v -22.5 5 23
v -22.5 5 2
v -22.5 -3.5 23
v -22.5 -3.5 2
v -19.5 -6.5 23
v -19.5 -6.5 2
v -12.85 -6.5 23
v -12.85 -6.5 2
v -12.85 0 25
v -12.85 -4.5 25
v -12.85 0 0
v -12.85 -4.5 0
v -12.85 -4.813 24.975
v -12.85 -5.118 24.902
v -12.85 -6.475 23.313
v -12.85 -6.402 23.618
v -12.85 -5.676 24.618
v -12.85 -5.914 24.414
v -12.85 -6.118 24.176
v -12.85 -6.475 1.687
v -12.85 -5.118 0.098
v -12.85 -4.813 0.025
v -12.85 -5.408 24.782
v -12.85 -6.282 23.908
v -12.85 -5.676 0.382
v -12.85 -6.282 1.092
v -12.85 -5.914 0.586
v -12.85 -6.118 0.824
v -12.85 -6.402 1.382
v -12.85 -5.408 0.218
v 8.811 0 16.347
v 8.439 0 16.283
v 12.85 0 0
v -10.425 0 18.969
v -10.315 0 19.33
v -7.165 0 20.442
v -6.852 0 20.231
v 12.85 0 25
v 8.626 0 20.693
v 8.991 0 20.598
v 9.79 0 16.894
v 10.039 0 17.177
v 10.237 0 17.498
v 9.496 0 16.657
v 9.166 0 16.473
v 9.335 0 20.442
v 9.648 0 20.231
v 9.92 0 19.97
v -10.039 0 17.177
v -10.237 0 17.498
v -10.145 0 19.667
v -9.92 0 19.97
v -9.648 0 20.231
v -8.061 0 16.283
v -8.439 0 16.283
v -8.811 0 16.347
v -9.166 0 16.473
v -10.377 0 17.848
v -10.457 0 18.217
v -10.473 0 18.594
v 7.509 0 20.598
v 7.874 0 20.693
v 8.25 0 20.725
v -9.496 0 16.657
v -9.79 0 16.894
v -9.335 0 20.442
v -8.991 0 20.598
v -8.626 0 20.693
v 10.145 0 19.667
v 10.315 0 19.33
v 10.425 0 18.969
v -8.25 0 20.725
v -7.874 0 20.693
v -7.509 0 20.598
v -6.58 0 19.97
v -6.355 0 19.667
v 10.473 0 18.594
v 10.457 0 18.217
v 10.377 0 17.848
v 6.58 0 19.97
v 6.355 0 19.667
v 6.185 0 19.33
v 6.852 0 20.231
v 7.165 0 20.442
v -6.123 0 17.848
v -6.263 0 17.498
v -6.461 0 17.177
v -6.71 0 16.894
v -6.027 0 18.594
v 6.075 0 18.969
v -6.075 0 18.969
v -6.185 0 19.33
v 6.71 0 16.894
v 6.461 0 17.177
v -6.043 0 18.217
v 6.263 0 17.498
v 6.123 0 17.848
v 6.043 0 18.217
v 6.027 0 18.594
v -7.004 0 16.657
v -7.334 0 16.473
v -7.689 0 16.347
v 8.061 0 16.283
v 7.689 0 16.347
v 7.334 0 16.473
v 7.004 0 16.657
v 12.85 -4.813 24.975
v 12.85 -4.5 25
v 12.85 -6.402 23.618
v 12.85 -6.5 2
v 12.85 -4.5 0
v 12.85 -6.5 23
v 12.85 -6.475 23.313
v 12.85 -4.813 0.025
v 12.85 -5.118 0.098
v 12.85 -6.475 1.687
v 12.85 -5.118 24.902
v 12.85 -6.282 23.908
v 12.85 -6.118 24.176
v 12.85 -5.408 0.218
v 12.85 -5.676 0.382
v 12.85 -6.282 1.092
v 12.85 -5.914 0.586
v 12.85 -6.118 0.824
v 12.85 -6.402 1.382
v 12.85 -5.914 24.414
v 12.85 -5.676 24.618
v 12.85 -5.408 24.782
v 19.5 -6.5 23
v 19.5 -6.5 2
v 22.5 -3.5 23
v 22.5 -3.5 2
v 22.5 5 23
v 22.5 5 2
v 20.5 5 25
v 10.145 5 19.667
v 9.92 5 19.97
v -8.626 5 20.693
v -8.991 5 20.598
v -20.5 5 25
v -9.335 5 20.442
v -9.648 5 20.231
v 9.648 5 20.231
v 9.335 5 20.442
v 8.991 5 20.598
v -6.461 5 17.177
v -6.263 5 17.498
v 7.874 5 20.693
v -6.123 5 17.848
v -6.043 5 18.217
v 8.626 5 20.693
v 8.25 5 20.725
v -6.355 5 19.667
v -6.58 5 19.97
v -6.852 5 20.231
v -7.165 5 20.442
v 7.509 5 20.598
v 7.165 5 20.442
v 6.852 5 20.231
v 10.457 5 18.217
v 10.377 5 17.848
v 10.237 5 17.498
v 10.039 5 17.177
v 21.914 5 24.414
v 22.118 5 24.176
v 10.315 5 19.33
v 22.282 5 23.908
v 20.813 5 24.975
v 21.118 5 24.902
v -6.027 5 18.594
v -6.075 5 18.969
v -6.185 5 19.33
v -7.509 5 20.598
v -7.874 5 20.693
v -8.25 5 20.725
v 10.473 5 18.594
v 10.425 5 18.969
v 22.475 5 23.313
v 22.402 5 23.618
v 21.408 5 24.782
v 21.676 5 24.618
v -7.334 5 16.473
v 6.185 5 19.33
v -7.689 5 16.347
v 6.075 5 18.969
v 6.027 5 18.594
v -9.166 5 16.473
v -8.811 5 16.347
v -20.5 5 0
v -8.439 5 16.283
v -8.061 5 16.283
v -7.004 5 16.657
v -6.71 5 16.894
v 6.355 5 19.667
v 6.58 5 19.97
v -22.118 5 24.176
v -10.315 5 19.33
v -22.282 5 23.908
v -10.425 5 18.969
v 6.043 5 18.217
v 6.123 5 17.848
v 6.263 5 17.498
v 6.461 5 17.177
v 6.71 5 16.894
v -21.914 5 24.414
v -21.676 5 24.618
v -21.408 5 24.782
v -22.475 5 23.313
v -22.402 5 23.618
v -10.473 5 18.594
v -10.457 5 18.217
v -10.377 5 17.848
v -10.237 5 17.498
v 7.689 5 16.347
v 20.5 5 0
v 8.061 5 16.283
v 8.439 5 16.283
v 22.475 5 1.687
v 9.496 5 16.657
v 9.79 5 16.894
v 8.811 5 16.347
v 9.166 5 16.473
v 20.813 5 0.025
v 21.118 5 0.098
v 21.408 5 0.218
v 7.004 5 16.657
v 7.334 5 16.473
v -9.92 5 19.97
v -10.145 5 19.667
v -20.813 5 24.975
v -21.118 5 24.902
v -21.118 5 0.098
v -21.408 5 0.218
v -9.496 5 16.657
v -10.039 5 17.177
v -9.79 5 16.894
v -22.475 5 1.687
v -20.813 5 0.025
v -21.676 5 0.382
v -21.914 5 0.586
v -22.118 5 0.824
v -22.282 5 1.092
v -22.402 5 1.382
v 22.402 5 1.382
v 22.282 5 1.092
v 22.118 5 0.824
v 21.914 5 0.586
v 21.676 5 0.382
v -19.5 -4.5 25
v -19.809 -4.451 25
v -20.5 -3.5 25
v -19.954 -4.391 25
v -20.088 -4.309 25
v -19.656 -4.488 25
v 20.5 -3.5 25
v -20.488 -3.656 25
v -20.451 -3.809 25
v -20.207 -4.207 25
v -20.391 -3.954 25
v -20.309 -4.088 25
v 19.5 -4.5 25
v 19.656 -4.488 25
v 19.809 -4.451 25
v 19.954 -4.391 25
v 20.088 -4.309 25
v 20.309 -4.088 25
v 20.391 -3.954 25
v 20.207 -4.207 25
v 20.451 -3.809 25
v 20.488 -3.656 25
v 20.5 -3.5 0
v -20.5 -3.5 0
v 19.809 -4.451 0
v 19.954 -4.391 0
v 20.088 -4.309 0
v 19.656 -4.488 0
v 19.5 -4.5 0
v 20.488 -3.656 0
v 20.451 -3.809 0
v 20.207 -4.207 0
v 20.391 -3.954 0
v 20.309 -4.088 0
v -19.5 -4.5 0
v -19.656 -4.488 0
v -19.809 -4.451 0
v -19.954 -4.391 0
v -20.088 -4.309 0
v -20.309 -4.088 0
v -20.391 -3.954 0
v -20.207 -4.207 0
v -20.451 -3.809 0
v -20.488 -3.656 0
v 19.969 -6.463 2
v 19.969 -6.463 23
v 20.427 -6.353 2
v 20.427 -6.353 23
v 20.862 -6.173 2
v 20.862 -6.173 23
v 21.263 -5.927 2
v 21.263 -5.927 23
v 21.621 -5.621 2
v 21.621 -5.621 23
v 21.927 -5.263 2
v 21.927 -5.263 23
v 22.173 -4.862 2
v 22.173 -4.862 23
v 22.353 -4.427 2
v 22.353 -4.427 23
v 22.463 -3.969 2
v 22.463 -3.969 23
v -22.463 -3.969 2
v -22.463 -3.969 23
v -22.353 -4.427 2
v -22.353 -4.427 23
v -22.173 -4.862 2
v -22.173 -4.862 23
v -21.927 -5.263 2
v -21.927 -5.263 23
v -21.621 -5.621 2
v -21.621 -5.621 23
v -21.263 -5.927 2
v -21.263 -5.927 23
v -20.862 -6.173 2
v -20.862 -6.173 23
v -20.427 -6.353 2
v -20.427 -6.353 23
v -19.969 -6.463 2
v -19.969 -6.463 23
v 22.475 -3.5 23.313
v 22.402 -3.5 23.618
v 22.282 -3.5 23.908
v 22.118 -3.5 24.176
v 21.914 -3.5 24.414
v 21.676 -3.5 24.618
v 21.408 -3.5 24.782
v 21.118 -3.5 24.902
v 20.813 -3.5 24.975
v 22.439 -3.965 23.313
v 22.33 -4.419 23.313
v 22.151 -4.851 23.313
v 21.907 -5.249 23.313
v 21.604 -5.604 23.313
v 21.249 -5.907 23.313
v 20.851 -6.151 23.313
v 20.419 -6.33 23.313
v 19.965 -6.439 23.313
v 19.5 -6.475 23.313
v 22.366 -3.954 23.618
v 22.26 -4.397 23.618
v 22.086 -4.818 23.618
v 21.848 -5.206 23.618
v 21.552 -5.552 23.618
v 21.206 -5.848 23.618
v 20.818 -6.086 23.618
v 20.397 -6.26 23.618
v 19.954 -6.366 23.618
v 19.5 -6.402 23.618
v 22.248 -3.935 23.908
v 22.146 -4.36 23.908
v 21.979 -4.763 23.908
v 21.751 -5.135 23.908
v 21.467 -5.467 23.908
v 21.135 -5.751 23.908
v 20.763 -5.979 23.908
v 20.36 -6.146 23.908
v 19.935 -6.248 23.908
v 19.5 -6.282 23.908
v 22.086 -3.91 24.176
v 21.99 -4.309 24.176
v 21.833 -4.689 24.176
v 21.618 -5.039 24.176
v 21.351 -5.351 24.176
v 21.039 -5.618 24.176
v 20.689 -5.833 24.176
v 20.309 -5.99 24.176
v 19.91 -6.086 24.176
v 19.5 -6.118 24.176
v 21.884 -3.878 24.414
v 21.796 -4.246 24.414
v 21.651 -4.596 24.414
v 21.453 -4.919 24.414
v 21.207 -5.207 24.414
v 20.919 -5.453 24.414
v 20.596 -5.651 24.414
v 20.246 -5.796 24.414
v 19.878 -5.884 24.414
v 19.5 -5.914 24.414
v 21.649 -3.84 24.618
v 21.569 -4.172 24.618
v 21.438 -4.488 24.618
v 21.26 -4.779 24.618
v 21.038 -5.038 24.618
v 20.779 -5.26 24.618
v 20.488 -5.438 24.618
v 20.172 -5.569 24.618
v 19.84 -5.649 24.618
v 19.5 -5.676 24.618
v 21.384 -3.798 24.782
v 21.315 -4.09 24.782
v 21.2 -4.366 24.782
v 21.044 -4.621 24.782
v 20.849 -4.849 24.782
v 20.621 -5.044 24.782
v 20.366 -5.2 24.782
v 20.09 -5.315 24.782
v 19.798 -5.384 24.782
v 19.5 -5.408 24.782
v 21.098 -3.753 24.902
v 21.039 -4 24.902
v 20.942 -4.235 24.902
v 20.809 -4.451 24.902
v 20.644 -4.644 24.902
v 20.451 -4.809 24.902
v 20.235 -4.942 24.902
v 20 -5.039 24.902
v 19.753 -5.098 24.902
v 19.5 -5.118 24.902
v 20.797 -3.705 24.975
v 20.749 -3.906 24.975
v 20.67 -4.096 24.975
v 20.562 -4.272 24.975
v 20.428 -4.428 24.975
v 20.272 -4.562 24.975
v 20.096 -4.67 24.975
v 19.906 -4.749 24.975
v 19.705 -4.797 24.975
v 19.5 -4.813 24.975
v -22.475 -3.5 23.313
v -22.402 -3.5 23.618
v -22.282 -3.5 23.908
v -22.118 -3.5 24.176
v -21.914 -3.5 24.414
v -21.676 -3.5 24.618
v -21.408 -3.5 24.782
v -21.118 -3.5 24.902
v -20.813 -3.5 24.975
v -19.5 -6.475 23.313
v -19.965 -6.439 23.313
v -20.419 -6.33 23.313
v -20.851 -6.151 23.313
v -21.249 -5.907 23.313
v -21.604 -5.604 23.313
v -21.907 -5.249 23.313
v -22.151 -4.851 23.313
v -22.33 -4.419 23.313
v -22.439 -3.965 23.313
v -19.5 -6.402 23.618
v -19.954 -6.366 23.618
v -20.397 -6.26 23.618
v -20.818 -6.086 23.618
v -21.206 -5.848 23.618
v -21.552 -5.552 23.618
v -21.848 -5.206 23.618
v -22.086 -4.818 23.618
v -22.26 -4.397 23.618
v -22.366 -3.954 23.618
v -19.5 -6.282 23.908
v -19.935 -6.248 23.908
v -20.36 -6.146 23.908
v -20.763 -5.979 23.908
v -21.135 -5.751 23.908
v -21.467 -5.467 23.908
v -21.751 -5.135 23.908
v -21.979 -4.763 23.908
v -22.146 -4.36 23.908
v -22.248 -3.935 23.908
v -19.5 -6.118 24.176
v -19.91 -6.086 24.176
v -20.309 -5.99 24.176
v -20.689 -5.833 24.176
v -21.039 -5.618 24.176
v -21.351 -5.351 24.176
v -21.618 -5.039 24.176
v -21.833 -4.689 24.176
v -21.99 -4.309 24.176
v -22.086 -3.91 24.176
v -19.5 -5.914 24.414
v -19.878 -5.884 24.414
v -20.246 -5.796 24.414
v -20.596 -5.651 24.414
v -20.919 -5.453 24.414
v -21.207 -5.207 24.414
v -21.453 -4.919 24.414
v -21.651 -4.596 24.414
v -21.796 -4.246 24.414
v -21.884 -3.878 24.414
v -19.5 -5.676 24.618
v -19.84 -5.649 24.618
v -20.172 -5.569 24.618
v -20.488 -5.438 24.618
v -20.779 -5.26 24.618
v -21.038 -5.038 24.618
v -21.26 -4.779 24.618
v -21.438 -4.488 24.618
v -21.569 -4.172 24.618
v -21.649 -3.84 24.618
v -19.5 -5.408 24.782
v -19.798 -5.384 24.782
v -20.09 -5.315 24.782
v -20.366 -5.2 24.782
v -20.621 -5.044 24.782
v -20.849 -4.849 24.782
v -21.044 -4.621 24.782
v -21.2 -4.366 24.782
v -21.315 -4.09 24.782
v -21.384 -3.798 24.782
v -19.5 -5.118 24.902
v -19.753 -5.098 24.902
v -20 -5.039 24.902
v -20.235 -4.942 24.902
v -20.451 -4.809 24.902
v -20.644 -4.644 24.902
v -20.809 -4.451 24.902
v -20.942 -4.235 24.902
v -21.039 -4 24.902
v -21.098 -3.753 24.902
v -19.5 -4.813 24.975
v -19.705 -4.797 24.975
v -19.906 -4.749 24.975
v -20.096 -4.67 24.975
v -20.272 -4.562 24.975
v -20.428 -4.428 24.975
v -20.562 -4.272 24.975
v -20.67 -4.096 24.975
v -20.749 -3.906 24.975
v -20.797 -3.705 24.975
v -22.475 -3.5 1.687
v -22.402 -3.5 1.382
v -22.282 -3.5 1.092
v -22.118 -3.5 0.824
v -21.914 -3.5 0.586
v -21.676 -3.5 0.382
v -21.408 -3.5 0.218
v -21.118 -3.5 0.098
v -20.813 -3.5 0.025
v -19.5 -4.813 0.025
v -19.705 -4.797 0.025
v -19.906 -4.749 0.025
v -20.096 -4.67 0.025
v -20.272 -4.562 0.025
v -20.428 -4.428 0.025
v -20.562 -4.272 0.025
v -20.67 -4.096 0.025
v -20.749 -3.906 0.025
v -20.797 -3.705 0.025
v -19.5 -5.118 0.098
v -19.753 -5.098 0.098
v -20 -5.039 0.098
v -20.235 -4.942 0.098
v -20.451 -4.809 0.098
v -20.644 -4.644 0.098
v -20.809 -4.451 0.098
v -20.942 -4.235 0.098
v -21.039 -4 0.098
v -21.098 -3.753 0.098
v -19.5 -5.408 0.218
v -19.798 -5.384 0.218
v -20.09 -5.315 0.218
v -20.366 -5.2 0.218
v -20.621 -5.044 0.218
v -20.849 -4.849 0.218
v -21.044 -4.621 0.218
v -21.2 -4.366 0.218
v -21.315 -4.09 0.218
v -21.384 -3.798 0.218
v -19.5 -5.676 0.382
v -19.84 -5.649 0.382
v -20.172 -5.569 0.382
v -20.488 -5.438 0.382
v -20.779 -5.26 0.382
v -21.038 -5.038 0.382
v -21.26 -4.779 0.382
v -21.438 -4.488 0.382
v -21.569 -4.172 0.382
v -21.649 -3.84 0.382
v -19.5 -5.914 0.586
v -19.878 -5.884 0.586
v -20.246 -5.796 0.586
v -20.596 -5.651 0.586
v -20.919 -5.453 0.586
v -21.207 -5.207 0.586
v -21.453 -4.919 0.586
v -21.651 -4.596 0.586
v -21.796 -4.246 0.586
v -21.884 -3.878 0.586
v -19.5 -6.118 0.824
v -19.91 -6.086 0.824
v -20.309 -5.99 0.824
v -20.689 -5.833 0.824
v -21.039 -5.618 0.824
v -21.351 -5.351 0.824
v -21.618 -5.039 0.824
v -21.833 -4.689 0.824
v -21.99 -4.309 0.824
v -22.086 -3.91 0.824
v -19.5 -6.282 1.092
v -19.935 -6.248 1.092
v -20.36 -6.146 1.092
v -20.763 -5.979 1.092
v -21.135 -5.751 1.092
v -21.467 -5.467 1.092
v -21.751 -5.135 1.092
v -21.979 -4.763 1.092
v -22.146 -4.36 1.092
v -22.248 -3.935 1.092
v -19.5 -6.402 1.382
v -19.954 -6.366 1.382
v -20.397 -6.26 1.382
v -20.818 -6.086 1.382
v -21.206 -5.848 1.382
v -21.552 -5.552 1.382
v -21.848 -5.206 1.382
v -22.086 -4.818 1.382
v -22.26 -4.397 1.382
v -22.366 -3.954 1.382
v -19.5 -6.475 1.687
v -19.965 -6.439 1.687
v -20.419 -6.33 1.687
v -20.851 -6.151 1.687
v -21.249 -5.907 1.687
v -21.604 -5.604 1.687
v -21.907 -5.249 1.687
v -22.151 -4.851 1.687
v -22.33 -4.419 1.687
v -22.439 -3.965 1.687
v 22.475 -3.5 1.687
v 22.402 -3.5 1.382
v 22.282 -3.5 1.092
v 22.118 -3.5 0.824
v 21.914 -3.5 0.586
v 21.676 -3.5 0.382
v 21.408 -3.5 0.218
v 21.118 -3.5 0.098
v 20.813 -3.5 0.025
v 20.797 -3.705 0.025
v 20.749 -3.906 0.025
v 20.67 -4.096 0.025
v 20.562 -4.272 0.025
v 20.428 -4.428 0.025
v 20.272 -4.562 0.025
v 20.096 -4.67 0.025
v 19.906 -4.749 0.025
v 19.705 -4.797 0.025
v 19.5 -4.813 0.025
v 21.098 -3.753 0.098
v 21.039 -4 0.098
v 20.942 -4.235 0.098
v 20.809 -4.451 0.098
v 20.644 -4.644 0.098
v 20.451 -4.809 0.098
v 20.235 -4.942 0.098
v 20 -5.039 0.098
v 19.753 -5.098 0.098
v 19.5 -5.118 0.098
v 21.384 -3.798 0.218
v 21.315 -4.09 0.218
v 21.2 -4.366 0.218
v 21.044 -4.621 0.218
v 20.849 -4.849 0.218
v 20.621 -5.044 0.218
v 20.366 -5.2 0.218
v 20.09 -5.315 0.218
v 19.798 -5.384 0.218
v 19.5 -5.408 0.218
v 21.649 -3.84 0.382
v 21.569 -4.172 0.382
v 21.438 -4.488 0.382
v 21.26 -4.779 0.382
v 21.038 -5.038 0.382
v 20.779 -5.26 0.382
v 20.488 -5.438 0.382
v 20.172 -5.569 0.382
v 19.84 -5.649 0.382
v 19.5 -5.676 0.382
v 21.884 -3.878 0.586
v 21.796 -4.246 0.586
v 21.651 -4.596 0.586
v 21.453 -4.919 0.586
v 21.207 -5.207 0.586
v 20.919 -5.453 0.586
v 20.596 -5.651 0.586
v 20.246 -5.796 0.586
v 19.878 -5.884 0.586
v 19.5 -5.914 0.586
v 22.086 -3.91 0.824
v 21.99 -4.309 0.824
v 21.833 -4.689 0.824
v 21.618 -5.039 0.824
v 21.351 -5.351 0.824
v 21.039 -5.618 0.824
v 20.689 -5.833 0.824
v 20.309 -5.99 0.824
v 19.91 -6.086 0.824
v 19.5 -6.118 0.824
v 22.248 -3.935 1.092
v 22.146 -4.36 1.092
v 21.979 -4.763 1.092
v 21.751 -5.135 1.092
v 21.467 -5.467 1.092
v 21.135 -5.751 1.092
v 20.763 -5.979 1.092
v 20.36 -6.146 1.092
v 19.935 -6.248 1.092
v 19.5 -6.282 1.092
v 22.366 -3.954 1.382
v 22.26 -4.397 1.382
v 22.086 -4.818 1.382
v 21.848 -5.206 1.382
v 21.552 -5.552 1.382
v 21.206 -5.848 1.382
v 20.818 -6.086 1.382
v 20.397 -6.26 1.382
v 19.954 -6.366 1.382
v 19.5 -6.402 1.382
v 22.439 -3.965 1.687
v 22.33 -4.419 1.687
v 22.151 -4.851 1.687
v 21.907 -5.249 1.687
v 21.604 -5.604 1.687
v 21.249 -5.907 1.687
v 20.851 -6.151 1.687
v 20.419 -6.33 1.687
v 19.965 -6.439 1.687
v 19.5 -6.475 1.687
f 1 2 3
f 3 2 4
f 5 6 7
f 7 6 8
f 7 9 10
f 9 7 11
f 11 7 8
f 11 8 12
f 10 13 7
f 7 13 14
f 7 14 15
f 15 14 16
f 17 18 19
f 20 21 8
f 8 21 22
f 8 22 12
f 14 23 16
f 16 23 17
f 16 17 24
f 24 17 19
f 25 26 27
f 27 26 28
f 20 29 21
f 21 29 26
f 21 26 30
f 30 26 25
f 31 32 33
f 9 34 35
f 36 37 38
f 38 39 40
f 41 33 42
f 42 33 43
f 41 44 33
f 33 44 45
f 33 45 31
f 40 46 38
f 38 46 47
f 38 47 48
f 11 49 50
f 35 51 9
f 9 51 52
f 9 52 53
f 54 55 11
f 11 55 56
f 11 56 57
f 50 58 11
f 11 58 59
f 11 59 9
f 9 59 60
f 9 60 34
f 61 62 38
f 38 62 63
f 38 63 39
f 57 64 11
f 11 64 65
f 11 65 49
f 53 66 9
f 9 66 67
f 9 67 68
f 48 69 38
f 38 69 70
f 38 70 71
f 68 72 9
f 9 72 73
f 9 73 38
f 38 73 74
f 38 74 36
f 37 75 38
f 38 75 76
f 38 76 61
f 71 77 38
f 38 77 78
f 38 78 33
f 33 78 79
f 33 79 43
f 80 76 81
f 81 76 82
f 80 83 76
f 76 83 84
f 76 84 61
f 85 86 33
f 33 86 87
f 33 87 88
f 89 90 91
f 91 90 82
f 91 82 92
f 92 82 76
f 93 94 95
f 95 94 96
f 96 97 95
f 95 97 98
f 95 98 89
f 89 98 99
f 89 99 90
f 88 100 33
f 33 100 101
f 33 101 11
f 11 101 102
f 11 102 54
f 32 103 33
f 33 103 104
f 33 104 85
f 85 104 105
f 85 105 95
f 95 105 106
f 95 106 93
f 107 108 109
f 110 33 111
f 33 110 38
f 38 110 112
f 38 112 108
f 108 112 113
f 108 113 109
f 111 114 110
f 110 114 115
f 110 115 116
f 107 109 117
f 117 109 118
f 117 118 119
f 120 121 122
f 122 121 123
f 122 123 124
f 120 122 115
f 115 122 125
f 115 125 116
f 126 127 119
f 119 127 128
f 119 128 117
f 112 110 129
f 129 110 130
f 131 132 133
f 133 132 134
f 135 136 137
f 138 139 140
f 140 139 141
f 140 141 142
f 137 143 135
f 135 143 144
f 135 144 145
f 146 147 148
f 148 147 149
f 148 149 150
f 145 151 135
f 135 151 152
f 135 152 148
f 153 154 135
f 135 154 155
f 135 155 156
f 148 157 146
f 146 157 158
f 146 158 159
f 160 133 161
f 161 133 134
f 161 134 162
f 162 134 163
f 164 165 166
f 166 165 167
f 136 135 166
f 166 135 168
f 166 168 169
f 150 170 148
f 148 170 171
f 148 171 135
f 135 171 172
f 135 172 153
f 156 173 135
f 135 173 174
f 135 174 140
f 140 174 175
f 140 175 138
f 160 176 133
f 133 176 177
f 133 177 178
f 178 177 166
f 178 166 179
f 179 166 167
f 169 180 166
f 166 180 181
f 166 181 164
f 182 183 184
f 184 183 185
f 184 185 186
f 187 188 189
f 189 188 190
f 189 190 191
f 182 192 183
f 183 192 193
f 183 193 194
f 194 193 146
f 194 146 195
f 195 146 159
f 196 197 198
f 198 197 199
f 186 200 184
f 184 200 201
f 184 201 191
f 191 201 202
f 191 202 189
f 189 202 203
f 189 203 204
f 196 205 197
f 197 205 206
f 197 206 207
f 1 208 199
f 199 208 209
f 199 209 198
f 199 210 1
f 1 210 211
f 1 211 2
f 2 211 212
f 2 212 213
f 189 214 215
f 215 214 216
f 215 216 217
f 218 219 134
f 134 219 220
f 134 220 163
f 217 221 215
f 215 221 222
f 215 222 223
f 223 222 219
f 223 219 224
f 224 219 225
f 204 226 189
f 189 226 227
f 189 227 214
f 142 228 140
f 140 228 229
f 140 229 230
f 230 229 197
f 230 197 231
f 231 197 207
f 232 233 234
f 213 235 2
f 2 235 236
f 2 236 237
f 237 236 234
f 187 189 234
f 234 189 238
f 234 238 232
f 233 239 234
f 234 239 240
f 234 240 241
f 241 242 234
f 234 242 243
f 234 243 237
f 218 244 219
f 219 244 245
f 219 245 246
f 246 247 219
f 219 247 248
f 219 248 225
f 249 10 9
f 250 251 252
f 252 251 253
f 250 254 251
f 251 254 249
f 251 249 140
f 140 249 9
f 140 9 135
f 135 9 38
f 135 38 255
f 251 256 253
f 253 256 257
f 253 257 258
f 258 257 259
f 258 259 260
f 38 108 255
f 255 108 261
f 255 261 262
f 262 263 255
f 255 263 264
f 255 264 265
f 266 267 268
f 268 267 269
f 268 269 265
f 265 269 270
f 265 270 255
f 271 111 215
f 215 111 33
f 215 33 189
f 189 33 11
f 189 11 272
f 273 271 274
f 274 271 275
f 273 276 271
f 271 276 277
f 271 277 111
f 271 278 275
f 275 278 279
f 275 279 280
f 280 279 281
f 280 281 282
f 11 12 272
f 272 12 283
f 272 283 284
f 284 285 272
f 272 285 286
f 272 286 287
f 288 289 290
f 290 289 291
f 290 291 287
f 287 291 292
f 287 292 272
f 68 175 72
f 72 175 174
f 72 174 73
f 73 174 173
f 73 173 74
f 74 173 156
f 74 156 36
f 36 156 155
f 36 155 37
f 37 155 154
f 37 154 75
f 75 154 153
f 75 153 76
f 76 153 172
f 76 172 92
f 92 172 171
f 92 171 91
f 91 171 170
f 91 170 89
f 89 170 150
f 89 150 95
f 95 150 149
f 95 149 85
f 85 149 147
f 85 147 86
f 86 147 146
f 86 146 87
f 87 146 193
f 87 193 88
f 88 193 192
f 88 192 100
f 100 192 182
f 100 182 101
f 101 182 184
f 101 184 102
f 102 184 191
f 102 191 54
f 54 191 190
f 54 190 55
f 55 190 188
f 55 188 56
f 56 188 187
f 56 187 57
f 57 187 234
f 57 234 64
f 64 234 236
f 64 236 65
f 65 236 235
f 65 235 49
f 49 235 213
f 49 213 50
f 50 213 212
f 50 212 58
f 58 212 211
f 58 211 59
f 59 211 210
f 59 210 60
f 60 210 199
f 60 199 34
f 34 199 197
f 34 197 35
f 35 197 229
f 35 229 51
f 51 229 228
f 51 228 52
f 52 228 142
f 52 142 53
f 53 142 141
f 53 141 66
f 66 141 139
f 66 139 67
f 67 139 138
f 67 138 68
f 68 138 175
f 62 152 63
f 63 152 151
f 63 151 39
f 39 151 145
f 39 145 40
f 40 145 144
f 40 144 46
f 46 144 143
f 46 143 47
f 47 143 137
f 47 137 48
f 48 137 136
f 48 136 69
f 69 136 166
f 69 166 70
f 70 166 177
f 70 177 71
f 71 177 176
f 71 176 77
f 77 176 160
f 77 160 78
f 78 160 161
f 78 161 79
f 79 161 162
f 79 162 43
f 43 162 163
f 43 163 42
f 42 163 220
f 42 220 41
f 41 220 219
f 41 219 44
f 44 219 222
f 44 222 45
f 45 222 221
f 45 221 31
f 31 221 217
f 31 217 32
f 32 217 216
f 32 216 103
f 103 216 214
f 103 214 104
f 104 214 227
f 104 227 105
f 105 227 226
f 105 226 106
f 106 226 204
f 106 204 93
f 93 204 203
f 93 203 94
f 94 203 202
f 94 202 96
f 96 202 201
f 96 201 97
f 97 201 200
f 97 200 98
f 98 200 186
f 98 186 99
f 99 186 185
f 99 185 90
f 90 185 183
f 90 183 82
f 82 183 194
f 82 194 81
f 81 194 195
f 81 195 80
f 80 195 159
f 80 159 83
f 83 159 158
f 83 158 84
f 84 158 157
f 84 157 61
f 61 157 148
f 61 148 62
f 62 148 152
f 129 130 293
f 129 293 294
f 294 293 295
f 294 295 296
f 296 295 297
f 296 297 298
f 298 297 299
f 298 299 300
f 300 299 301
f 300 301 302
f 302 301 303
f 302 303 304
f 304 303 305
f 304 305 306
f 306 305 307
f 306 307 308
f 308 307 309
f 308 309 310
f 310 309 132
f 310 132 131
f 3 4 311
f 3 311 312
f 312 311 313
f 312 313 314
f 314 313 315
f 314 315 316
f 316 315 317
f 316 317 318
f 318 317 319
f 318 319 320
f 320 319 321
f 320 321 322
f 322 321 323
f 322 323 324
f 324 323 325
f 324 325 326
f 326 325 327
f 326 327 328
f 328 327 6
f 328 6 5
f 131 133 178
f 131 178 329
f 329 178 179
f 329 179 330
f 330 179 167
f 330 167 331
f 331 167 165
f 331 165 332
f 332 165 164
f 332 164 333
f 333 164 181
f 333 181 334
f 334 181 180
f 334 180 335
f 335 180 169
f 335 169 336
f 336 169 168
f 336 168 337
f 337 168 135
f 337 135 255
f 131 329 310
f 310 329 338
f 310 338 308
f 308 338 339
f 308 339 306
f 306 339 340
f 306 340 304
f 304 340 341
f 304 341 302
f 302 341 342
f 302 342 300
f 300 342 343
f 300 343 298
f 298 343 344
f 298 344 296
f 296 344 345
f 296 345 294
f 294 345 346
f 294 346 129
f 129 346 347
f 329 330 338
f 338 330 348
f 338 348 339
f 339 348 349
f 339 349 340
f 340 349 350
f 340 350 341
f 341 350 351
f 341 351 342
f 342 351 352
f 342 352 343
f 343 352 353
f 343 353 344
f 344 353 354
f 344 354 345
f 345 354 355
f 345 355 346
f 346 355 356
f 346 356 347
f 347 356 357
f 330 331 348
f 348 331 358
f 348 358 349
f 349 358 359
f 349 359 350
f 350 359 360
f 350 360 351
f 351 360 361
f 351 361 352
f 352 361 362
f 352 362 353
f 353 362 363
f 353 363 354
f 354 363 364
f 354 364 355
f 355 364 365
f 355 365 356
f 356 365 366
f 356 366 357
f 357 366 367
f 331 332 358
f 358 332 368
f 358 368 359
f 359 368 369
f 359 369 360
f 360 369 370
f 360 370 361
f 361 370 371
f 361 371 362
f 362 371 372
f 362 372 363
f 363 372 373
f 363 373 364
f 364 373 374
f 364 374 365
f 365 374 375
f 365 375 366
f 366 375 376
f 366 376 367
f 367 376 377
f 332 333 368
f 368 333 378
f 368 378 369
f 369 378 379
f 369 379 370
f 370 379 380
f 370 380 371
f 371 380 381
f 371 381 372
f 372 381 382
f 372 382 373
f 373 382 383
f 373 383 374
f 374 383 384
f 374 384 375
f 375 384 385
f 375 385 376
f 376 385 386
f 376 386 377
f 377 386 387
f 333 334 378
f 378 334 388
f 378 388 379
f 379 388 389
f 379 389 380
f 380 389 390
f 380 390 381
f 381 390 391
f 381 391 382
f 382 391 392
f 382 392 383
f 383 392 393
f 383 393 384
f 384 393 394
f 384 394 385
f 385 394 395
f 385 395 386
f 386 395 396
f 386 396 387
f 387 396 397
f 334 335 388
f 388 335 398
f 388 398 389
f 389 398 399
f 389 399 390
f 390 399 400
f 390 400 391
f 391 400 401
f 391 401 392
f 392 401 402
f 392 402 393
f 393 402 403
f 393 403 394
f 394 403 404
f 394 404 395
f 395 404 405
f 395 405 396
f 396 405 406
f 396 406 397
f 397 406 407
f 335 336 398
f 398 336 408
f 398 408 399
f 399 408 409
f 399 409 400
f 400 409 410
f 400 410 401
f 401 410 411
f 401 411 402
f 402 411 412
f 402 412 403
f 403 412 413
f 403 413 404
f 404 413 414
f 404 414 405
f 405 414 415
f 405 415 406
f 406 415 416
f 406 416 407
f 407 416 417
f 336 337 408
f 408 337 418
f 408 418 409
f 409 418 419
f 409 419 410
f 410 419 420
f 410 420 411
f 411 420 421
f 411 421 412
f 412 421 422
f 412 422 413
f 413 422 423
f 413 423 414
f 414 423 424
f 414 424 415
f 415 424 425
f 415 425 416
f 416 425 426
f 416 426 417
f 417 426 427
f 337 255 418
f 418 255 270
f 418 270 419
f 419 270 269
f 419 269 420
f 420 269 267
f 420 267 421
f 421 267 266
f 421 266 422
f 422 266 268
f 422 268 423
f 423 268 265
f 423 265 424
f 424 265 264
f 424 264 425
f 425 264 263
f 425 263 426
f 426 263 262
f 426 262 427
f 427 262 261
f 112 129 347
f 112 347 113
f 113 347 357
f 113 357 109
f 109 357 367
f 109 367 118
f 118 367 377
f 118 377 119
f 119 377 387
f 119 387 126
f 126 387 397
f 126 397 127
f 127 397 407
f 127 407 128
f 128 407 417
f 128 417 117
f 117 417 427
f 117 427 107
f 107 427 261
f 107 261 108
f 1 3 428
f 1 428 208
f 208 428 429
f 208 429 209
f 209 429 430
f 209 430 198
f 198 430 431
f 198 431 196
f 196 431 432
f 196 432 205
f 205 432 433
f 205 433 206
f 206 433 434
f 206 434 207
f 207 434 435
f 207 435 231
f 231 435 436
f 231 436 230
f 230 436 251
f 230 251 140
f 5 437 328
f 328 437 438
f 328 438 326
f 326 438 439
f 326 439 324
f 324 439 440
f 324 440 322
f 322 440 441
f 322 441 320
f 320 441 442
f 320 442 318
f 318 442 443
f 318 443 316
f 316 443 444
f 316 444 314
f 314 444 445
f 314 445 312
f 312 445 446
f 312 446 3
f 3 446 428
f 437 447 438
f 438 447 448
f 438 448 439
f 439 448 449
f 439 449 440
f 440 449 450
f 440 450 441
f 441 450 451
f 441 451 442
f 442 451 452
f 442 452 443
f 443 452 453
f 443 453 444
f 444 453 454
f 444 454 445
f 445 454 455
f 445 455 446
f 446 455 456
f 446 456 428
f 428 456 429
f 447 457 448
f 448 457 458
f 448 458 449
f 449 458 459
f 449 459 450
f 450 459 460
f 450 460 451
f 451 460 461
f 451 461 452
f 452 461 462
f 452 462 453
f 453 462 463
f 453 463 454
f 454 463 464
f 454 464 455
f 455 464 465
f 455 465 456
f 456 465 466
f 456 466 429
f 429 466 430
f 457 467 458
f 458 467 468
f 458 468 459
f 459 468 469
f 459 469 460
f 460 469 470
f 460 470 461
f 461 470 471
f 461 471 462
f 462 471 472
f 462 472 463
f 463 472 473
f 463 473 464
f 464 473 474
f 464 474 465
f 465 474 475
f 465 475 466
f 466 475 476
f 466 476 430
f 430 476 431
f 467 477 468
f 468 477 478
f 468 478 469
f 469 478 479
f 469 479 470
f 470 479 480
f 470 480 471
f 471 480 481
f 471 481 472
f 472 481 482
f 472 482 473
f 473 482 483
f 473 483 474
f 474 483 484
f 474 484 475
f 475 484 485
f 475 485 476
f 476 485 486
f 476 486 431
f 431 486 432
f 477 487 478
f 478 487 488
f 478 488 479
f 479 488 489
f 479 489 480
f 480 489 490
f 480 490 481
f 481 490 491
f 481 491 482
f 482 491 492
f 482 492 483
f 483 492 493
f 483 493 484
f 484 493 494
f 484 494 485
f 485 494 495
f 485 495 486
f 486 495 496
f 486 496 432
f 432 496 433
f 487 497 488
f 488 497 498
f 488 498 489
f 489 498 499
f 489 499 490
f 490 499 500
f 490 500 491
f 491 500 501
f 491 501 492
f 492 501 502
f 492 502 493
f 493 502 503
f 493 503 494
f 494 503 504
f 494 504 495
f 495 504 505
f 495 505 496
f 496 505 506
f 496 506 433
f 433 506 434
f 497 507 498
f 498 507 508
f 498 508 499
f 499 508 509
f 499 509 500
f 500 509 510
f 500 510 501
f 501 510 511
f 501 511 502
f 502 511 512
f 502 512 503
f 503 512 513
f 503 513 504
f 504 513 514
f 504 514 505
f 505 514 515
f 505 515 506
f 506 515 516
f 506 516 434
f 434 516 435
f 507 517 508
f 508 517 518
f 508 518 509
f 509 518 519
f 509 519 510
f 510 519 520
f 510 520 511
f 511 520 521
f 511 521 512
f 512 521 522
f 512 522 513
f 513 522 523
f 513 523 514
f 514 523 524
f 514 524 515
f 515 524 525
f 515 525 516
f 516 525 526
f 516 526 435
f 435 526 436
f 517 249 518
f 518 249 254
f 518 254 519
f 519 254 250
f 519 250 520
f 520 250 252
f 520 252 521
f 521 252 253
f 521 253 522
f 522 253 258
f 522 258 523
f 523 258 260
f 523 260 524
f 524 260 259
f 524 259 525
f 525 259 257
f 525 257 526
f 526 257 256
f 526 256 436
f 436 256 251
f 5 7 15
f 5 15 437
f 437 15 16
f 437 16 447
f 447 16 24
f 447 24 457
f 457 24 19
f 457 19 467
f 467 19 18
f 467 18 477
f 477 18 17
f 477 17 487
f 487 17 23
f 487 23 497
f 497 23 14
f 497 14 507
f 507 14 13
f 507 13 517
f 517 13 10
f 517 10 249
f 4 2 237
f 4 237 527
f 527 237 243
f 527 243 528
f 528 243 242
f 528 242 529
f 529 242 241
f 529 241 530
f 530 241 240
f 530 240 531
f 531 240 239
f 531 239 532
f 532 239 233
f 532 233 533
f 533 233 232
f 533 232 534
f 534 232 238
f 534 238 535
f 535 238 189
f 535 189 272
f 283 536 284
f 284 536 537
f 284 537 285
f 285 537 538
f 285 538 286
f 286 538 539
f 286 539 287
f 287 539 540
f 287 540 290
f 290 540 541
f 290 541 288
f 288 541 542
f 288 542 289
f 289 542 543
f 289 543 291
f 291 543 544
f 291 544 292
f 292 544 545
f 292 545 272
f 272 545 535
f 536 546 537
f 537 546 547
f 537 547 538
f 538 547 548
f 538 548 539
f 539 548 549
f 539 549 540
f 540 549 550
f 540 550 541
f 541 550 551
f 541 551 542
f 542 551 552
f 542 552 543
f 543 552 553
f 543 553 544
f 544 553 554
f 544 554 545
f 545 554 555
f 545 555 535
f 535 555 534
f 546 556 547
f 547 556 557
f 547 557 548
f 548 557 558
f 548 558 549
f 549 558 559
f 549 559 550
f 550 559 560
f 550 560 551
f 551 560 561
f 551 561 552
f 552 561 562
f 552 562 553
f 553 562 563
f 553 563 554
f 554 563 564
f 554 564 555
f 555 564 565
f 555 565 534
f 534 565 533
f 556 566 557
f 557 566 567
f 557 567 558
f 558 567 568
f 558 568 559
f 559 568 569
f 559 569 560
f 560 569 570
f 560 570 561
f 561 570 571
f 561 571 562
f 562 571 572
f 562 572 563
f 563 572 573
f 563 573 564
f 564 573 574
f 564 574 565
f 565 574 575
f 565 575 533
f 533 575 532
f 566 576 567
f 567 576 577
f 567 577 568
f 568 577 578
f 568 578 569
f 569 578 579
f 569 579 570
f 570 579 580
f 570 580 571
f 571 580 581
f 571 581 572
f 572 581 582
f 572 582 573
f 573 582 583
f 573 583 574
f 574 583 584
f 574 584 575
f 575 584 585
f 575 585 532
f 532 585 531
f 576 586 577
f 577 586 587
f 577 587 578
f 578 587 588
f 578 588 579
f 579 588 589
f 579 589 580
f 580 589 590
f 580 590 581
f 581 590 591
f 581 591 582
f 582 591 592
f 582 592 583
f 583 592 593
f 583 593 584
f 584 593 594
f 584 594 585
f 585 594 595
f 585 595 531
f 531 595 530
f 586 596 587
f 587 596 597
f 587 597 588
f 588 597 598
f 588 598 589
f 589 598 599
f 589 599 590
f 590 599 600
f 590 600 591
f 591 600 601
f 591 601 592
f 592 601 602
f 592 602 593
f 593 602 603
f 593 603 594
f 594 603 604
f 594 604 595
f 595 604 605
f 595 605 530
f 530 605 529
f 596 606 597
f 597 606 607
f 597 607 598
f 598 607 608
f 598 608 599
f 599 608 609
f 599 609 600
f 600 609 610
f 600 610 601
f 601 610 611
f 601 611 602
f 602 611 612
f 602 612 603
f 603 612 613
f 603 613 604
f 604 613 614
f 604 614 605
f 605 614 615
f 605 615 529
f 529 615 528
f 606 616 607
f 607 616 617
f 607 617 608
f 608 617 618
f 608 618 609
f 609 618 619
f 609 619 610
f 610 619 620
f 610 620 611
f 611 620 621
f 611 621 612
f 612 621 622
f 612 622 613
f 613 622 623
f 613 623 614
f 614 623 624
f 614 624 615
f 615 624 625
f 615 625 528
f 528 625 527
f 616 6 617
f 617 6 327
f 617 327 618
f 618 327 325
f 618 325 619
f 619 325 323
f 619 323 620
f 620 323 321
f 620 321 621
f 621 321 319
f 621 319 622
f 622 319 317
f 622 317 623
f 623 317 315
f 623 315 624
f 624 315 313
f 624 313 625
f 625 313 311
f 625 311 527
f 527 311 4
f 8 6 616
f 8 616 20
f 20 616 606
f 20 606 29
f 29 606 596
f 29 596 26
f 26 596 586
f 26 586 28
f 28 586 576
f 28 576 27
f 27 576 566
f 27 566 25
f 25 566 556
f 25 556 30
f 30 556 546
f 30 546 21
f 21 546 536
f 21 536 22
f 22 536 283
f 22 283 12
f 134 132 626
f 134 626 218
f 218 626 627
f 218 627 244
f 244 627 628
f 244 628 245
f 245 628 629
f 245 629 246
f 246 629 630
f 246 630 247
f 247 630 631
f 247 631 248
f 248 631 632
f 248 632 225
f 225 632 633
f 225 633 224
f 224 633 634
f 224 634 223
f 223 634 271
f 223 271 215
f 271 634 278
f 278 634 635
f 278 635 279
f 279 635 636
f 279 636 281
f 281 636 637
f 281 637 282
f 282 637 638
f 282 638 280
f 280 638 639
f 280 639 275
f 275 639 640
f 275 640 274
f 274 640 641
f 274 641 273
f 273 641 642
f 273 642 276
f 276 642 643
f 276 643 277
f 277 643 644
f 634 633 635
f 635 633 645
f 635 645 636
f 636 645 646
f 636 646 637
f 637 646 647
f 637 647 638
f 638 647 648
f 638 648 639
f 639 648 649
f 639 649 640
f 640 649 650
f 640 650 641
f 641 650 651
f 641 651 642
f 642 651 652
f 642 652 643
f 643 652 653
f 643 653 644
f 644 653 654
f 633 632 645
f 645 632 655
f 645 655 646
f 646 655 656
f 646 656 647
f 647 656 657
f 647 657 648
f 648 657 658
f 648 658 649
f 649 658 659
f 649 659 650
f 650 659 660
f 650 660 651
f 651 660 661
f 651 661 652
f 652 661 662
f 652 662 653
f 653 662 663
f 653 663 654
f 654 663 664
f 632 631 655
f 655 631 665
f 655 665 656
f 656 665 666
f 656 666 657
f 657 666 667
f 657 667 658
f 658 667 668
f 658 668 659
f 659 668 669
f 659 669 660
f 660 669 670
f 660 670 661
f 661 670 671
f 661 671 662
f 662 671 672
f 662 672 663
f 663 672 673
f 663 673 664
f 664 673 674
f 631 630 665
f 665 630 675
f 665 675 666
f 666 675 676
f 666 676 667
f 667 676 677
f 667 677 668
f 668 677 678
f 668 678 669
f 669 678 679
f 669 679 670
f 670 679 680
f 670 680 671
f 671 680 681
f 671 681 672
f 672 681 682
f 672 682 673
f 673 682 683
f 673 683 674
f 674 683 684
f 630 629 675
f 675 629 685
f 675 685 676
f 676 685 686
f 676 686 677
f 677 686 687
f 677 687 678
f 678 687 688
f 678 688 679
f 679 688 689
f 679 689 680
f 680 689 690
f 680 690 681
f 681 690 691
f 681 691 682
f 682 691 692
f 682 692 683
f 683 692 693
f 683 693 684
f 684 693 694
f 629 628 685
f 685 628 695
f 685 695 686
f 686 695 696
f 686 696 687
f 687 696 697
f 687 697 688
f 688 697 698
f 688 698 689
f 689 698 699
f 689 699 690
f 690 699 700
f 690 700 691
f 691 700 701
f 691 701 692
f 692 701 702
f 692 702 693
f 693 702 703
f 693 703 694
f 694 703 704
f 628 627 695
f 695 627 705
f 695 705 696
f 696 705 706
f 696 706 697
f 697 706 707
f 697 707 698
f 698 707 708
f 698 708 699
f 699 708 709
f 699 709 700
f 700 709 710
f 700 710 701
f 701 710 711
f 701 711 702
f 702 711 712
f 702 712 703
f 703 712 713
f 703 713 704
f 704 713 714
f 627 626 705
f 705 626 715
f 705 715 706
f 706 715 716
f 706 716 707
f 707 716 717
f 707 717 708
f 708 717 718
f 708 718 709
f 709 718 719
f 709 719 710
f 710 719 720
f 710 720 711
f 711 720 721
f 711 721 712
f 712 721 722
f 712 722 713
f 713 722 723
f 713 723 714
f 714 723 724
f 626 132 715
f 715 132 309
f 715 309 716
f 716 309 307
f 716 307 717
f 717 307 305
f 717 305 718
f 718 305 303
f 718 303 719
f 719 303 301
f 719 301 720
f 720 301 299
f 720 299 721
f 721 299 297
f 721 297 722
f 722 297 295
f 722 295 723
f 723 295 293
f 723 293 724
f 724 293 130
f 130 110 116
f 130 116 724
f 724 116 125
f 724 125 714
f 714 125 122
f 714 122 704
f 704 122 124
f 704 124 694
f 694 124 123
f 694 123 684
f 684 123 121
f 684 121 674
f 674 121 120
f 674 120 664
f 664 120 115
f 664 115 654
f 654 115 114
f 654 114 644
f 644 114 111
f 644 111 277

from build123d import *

# Parameters (mm, degrees)
BOSS_EXTRUDE1_DEPTH = 25
SKETCH2_R           = 2.225
CUT_EXTRUDE1_DEPTH  = 36.545745174
FILLET1_R           = 3
FILLET2_R           = 2


with BuildPart() as part:
    # Sketch1 → Boss-Extrude1 (new body)
    with BuildSketch(Plane.XY):
        Polygon((-22.5, 5), (22.5, 5), (22.5, -6.5), (12.85, -6.5), (12.85, 0), (-12.85, 0), (-12.85, -6.5), (-22.5, -6.5), align=None)
    extrude(amount=BOSS_EXTRUDE1_DEPTH)

    # Sketch2 → Cut-Extrude1 (cut, through all)
    with BuildSketch(Plane(origin=(0, 5, 0), x_dir=(1, 0, 0), z_dir=(0, 1, 0))):
        with Locations((-8.25, -18.5)):
            Circle(SKETCH2_R)
        with Locations((8.25, -18.5)):
            Circle(SKETCH2_R)
    extrude(amount=-CUT_EXTRUDE1_DEPTH, mode=Mode.SUBTRACT)

    # Fillet1
    fillet1_edges = [part.edges().sort_by_distance(p)[0] for p in [
        (22.5, -6.5, 12.5),
        (-22.5, -6.5, 12.5),
    ]]
    fillet(fillet1_edges, radius=FILLET1_R)

    # Fillet2
    fillet2_edges = [part.edges().sort_by_distance(p)[0] for p in [
        (16.175, -6.5, 25),
        (21.621320344, -5.621320344, 25),
        (-16.175, -6.5, 25),
        (-21.621320344, -5.621320344, 25),
        (-16.175, -6.5, 0),
        (-21.621320344, -5.621320344, 0),
        (16.175, -6.5, 0),
        (21.621320344, -5.621320344, 0),
        (22.5, 0.75, 25),
        (-22.5, 0.75, 25),
        (-22.5, 0.75, 0),
        (22.5, 0.75, 0),
    ]]
    fillet(fillet2_edges, radius=FILLET2_R)


solid = part.part
